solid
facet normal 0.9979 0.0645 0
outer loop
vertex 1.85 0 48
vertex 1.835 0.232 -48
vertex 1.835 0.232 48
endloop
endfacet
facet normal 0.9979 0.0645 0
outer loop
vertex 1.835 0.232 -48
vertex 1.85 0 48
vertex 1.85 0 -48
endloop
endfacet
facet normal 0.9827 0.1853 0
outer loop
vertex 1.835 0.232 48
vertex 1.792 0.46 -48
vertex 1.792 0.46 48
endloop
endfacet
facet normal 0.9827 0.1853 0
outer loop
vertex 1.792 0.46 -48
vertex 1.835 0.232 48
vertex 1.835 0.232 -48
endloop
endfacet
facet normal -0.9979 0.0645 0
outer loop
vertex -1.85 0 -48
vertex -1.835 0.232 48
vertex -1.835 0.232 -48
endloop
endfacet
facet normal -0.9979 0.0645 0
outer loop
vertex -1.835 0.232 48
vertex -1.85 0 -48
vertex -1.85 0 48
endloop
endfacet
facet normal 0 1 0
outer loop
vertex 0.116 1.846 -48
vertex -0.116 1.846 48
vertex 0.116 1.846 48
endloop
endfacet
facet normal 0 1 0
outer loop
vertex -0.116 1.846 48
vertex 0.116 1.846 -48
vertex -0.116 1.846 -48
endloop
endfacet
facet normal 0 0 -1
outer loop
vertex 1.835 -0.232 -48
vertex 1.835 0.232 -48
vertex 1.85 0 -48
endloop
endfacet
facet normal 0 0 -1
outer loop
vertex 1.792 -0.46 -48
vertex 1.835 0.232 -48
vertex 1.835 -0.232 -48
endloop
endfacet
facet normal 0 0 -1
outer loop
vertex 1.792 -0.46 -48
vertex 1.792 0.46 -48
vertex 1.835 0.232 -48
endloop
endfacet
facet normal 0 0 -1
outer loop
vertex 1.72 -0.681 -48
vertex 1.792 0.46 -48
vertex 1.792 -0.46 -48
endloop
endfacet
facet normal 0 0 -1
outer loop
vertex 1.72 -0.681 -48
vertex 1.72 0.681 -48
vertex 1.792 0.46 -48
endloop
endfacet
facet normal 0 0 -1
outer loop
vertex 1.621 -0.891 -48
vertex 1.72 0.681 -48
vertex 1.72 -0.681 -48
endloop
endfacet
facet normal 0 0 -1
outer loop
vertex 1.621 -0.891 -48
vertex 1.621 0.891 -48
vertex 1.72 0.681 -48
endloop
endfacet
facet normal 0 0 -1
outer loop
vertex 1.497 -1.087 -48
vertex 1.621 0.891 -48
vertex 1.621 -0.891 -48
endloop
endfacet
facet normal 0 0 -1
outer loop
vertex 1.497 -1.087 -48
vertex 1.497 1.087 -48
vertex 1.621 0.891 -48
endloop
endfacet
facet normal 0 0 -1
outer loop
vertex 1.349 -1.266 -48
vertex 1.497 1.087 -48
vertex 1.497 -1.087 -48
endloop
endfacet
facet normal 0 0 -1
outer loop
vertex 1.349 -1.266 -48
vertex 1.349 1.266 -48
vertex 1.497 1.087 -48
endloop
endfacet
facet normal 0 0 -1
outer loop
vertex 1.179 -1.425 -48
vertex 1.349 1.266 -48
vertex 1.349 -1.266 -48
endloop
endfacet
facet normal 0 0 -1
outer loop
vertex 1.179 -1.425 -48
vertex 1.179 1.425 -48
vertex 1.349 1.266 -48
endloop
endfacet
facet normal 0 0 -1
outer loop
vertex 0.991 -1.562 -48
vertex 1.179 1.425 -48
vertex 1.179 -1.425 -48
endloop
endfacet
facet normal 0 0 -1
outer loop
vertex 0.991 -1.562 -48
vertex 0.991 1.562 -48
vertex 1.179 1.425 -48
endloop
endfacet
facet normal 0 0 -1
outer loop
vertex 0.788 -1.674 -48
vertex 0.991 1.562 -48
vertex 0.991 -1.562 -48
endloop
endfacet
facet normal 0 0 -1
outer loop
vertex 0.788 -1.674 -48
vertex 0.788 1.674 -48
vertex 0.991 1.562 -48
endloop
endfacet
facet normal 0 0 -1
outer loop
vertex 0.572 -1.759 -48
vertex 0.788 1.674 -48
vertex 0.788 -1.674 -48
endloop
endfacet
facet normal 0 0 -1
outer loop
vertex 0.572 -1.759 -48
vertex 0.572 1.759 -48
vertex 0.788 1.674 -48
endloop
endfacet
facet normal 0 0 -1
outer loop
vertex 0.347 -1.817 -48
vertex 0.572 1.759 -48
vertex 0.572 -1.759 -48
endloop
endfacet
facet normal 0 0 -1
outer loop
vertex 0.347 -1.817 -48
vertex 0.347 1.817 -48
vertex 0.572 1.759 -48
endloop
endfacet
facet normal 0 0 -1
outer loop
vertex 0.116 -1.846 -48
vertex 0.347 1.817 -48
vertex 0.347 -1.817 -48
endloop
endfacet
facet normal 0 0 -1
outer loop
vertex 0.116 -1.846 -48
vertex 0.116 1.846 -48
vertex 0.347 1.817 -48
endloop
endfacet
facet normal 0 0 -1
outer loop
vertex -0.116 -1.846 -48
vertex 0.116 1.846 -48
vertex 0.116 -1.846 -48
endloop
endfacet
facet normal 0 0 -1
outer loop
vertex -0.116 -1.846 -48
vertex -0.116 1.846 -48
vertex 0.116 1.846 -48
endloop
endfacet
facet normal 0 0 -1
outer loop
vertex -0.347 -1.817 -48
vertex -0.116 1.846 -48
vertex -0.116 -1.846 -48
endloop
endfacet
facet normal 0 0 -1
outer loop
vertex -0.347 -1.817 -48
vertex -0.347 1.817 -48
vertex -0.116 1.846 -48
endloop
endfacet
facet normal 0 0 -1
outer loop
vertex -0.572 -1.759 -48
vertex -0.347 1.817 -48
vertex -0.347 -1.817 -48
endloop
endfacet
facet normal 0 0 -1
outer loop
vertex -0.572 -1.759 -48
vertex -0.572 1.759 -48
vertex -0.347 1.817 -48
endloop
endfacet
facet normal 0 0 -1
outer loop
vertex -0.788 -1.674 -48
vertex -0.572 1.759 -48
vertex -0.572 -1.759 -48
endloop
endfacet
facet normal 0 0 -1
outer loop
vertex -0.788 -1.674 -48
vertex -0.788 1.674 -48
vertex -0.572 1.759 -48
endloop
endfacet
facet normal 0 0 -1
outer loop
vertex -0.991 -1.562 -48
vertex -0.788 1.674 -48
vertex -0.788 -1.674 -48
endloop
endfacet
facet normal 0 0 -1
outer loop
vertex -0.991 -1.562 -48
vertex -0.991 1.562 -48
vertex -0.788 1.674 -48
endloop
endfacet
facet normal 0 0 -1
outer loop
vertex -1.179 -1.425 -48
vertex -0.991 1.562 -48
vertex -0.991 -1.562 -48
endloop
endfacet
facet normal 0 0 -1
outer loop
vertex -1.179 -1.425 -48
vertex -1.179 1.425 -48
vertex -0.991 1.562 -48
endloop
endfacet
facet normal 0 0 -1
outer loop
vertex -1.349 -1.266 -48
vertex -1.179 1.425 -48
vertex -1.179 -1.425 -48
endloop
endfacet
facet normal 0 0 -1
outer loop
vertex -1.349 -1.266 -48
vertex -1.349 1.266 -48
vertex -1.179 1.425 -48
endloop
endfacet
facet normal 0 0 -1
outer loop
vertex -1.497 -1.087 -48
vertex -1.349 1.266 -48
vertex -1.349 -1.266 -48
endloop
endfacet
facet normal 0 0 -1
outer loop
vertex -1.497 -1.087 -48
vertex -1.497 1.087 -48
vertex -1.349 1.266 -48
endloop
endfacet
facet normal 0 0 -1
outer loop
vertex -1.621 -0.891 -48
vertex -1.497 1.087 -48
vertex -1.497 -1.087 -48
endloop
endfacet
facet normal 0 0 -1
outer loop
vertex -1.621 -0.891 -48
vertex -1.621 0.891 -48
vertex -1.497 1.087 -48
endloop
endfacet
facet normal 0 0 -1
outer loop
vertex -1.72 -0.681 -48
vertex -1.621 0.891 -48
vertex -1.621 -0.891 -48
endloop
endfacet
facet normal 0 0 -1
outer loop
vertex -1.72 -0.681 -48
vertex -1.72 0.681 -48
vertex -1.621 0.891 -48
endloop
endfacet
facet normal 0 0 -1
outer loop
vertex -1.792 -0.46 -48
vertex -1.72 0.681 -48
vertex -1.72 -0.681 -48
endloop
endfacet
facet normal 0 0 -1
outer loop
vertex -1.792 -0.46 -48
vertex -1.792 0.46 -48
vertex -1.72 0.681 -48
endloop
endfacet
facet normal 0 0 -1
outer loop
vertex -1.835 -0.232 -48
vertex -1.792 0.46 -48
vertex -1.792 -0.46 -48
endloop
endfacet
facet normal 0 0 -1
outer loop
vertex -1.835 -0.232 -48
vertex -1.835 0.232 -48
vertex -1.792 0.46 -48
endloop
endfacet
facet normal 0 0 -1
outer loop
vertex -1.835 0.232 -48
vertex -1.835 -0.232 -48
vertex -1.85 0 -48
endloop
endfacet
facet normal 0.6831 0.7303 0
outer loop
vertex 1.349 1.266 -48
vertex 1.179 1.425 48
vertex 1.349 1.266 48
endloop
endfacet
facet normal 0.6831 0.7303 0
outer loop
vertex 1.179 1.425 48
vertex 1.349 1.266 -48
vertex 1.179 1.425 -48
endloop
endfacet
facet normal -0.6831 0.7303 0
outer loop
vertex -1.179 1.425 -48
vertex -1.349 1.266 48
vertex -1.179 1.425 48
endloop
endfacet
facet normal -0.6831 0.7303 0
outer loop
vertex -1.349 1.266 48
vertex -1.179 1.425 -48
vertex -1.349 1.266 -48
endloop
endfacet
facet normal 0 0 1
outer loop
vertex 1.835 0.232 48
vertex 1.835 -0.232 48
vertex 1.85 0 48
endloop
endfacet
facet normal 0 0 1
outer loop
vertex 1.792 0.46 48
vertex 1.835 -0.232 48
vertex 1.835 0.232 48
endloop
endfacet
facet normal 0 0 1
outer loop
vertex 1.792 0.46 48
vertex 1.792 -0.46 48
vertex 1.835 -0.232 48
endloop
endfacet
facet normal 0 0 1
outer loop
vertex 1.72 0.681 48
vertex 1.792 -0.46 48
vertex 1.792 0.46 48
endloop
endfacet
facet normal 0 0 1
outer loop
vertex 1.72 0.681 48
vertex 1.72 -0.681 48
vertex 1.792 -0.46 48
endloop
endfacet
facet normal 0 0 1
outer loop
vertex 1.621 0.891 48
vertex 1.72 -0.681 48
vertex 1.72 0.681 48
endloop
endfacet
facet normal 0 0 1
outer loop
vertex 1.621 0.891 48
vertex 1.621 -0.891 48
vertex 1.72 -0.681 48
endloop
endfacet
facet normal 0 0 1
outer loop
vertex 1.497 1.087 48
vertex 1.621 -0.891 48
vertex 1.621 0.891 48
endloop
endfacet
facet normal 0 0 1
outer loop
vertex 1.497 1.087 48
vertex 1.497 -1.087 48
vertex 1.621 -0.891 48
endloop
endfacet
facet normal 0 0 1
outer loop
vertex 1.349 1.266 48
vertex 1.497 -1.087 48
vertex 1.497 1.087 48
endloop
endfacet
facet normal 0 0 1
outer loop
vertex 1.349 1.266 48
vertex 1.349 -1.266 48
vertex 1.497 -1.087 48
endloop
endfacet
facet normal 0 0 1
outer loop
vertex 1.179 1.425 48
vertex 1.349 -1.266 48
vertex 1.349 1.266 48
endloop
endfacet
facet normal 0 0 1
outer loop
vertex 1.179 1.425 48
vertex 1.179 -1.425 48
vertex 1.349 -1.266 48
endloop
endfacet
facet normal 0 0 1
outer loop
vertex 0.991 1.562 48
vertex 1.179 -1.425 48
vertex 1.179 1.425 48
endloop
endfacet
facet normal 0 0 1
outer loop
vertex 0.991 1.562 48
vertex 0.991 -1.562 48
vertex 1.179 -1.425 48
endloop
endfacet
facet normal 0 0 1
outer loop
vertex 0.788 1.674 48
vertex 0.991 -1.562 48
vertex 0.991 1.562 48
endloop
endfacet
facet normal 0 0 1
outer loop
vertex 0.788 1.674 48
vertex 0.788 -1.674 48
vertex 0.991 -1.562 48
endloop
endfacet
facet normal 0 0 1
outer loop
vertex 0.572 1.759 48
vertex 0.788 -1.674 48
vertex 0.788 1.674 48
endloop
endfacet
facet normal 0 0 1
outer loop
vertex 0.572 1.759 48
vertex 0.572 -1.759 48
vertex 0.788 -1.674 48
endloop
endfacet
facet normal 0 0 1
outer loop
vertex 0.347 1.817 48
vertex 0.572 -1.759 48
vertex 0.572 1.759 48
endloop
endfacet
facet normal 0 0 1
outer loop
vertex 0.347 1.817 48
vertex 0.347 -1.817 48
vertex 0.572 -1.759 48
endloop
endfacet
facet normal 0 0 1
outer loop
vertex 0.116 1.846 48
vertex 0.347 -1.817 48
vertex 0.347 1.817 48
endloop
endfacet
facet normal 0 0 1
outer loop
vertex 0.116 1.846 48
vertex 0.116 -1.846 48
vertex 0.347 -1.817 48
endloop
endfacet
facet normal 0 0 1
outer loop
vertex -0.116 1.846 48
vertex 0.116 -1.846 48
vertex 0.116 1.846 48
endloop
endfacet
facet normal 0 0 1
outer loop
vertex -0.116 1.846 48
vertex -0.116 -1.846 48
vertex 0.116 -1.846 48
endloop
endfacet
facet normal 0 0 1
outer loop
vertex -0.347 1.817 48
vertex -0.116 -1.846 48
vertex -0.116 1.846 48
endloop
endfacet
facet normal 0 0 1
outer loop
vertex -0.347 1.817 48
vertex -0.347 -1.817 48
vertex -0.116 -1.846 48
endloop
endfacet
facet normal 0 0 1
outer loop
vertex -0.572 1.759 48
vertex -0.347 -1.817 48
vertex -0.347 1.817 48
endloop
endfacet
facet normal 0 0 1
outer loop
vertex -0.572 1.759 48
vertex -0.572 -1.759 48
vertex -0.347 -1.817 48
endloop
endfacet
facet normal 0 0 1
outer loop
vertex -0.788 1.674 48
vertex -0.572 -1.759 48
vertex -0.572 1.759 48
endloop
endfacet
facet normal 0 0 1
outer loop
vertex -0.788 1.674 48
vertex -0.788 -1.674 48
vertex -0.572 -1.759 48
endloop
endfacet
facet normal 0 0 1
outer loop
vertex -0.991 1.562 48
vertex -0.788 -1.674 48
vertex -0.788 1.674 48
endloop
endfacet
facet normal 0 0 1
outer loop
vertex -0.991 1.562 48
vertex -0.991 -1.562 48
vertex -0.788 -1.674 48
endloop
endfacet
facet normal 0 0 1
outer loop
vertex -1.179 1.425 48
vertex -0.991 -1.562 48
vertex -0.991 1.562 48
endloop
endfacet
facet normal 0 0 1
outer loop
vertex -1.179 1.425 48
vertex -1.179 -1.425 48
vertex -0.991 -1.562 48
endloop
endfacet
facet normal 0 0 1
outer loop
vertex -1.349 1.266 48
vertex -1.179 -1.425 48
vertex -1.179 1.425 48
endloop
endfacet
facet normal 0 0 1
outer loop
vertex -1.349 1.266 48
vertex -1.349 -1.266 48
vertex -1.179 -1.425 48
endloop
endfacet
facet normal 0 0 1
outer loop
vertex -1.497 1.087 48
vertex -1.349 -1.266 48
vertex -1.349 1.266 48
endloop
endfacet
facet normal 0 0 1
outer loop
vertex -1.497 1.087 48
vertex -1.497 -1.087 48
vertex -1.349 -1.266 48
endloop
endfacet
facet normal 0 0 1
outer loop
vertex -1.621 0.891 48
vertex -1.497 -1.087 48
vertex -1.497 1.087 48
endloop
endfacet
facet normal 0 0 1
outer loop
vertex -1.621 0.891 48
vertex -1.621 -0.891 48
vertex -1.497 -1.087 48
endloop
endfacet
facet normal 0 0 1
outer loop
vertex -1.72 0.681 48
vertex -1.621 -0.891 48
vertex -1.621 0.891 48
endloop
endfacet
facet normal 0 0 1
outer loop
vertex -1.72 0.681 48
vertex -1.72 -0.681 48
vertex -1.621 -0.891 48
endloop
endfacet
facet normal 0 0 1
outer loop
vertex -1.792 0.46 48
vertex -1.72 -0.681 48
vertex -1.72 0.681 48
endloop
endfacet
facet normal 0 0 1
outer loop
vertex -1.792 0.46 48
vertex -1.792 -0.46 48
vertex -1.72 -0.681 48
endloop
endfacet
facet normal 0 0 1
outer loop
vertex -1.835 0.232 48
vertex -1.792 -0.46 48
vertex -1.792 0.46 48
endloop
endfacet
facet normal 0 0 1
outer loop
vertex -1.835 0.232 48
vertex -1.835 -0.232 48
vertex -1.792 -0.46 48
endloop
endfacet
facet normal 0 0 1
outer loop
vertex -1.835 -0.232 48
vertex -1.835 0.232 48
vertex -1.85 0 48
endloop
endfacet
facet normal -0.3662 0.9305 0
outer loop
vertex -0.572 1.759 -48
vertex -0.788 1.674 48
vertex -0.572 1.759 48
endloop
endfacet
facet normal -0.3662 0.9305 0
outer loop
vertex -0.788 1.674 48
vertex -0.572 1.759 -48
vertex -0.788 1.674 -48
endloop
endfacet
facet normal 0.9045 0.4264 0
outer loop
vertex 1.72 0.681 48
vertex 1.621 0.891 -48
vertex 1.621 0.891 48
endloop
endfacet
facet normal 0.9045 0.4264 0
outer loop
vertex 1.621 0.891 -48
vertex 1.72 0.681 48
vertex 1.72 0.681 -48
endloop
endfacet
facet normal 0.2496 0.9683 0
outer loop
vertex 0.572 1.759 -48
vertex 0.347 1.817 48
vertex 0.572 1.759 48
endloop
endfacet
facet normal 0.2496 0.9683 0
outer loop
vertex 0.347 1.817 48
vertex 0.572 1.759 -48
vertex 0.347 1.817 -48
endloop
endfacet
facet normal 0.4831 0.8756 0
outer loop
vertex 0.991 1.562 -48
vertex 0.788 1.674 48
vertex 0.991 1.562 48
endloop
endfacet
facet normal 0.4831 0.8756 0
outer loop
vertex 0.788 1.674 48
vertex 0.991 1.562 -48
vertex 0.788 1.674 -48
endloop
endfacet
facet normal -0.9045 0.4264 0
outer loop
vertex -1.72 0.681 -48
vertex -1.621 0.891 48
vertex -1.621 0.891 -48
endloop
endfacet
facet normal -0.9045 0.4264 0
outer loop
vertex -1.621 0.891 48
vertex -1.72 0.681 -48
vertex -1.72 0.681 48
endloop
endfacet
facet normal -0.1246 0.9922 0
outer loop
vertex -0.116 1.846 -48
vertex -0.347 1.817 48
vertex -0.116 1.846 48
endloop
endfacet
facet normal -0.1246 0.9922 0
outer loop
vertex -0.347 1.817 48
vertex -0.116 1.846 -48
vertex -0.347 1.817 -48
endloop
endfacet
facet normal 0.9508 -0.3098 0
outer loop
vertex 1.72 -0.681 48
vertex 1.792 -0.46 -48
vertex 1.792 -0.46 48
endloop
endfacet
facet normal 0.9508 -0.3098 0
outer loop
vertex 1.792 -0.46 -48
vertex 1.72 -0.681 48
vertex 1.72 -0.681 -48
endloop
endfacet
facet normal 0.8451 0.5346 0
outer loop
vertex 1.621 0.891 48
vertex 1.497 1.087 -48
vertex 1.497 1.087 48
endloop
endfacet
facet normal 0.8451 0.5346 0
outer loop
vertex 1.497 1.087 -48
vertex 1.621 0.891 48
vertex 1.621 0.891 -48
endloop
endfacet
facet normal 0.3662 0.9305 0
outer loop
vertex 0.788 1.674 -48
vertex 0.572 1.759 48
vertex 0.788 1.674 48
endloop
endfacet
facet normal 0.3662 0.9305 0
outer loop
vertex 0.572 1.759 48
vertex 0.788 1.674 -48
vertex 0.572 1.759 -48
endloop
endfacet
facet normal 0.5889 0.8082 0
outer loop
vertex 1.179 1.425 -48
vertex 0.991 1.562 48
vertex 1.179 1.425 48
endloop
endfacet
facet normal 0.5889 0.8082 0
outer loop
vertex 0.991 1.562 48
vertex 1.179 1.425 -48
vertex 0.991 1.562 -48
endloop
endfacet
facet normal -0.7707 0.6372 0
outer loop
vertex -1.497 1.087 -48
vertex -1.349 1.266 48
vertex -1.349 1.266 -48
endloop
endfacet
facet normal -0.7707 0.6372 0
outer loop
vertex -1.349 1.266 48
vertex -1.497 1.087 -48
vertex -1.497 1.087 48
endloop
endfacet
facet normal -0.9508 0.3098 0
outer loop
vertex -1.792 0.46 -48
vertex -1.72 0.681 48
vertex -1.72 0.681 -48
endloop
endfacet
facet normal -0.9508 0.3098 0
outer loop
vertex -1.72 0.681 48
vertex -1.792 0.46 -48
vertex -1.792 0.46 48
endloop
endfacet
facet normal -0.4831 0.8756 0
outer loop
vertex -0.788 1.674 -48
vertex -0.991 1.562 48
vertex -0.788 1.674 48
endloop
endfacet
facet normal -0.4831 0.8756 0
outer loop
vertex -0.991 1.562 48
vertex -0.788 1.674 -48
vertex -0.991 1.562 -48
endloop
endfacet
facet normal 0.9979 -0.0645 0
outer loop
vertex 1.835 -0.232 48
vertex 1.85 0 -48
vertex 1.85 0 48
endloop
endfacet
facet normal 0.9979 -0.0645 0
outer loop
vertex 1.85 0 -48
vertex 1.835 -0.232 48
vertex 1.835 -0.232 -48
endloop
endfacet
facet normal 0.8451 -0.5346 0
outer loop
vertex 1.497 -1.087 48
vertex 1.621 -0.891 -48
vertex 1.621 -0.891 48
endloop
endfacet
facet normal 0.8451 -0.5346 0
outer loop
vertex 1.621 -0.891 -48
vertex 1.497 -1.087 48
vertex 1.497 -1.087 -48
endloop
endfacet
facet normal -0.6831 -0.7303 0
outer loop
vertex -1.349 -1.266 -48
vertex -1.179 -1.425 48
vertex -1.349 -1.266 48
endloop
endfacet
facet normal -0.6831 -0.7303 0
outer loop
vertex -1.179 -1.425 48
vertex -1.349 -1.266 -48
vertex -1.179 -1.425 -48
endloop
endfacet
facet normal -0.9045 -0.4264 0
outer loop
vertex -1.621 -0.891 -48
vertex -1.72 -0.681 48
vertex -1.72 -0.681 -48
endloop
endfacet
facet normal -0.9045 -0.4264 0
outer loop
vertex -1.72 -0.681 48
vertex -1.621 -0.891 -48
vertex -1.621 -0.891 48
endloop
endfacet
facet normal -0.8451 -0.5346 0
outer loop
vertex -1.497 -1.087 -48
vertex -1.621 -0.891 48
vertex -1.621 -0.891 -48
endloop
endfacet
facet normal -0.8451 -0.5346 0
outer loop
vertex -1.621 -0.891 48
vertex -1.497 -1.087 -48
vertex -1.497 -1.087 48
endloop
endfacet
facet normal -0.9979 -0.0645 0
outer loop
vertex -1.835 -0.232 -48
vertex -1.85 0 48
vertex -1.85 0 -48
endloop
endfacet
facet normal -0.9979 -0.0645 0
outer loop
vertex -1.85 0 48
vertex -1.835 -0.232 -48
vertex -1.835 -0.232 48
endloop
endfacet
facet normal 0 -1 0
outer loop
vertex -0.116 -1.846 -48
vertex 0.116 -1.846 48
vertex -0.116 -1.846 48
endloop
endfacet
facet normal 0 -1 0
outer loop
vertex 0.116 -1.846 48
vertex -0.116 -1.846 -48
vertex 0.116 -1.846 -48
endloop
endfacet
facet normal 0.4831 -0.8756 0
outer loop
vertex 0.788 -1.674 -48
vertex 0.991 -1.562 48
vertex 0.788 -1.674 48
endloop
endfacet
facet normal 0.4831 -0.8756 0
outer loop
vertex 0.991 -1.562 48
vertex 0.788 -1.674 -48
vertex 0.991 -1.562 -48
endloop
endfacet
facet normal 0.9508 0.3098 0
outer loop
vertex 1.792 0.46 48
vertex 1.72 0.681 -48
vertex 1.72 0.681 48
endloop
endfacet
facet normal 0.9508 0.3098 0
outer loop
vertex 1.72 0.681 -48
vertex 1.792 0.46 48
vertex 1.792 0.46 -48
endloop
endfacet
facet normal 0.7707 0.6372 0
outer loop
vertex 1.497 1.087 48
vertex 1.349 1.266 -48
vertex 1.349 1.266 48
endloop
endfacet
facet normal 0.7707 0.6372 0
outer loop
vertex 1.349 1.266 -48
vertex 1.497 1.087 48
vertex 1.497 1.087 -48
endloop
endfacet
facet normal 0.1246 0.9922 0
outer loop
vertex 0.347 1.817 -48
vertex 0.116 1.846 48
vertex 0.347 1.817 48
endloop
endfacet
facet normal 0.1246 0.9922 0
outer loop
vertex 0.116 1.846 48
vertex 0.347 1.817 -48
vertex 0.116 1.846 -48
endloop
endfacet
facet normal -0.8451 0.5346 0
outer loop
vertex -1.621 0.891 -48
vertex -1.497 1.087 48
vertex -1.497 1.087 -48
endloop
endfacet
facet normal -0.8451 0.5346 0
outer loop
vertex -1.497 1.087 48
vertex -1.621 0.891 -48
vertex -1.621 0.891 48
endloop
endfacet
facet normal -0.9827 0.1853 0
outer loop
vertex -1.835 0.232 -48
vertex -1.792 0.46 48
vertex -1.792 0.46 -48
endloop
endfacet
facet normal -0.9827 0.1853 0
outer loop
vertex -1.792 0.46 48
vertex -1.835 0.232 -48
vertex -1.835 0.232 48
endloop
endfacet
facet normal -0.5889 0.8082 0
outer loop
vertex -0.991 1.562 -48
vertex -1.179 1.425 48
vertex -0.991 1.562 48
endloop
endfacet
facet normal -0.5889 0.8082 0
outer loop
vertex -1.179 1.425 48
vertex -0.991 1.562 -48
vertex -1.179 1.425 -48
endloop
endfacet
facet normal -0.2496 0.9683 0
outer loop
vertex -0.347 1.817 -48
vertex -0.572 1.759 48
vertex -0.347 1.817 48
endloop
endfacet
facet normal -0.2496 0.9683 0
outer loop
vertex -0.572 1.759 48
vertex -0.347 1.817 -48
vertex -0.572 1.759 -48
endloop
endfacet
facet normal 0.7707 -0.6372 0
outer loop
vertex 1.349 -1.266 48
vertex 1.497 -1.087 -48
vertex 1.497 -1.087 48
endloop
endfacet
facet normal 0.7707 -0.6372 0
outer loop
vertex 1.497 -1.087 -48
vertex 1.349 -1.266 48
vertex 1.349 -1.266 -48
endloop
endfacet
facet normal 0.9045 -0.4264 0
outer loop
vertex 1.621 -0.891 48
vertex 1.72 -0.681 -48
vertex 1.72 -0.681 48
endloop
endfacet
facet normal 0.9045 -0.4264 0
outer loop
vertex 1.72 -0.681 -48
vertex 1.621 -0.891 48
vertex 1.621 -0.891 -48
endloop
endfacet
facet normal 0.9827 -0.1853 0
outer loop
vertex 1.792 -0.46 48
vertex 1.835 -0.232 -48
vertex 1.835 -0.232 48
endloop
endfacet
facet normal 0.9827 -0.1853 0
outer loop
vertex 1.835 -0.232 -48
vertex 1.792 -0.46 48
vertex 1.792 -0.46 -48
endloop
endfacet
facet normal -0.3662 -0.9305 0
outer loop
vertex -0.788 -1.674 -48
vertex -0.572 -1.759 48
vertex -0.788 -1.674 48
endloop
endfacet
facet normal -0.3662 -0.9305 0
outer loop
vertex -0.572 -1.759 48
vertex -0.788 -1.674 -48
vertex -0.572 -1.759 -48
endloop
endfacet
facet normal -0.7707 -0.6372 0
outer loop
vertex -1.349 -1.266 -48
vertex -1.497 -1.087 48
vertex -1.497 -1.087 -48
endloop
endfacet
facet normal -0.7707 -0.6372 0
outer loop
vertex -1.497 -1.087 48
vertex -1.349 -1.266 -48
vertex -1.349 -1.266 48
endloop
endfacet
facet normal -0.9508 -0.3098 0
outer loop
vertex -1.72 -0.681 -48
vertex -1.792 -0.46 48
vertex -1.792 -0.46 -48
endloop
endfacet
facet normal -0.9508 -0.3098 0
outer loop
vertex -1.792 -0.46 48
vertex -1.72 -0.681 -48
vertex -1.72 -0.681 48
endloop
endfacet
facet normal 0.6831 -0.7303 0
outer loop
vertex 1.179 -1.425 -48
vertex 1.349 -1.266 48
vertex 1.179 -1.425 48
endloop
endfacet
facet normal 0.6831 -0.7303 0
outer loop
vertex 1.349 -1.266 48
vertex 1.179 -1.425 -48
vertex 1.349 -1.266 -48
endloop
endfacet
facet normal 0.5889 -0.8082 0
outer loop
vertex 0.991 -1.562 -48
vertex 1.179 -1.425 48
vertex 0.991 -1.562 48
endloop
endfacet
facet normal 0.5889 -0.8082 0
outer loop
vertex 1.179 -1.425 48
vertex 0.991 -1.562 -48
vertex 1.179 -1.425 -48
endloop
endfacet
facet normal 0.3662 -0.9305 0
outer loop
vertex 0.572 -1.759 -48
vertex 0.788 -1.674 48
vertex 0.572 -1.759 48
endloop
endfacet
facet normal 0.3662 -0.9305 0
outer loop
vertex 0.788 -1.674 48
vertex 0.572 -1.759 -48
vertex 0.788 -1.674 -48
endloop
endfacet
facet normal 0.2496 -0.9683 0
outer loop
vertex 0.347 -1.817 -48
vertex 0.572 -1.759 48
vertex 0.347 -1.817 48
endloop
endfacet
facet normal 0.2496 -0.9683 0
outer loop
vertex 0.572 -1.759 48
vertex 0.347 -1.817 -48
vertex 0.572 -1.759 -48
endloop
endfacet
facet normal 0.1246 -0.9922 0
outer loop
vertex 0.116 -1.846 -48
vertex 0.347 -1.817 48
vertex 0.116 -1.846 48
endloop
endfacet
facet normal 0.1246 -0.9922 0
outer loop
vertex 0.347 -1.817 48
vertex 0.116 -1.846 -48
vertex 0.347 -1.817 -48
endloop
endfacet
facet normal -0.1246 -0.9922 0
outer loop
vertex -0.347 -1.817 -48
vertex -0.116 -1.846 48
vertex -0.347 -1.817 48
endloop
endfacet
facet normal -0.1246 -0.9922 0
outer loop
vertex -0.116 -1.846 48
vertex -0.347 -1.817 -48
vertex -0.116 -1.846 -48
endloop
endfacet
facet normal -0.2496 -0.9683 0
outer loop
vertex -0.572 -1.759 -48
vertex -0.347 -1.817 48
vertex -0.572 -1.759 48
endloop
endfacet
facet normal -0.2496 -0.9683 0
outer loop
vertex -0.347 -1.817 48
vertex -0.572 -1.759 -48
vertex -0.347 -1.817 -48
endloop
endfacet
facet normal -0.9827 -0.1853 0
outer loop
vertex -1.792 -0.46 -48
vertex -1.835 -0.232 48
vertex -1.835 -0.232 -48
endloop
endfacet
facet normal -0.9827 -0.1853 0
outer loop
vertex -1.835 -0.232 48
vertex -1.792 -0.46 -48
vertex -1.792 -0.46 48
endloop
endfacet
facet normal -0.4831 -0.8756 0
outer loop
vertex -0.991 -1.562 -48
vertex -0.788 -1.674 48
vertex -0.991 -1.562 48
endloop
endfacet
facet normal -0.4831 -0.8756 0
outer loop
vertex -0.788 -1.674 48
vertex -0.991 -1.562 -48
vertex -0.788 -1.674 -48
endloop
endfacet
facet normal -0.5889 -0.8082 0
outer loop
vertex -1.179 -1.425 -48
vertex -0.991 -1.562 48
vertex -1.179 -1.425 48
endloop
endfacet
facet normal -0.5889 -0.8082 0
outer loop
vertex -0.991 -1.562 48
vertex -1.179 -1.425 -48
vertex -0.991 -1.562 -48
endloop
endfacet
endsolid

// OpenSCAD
$fn = 50;


difference() {
	union() {
		translate(v = [0, 0, -48.0000000000]) {
			cylinder(h = 96, r = 1.8500000000);
		}
	}
	union() {
		translate(v = [0, 0, -100.0000000000]) {
			cylinder(h = 200, r = 0);
		}
	}
}
